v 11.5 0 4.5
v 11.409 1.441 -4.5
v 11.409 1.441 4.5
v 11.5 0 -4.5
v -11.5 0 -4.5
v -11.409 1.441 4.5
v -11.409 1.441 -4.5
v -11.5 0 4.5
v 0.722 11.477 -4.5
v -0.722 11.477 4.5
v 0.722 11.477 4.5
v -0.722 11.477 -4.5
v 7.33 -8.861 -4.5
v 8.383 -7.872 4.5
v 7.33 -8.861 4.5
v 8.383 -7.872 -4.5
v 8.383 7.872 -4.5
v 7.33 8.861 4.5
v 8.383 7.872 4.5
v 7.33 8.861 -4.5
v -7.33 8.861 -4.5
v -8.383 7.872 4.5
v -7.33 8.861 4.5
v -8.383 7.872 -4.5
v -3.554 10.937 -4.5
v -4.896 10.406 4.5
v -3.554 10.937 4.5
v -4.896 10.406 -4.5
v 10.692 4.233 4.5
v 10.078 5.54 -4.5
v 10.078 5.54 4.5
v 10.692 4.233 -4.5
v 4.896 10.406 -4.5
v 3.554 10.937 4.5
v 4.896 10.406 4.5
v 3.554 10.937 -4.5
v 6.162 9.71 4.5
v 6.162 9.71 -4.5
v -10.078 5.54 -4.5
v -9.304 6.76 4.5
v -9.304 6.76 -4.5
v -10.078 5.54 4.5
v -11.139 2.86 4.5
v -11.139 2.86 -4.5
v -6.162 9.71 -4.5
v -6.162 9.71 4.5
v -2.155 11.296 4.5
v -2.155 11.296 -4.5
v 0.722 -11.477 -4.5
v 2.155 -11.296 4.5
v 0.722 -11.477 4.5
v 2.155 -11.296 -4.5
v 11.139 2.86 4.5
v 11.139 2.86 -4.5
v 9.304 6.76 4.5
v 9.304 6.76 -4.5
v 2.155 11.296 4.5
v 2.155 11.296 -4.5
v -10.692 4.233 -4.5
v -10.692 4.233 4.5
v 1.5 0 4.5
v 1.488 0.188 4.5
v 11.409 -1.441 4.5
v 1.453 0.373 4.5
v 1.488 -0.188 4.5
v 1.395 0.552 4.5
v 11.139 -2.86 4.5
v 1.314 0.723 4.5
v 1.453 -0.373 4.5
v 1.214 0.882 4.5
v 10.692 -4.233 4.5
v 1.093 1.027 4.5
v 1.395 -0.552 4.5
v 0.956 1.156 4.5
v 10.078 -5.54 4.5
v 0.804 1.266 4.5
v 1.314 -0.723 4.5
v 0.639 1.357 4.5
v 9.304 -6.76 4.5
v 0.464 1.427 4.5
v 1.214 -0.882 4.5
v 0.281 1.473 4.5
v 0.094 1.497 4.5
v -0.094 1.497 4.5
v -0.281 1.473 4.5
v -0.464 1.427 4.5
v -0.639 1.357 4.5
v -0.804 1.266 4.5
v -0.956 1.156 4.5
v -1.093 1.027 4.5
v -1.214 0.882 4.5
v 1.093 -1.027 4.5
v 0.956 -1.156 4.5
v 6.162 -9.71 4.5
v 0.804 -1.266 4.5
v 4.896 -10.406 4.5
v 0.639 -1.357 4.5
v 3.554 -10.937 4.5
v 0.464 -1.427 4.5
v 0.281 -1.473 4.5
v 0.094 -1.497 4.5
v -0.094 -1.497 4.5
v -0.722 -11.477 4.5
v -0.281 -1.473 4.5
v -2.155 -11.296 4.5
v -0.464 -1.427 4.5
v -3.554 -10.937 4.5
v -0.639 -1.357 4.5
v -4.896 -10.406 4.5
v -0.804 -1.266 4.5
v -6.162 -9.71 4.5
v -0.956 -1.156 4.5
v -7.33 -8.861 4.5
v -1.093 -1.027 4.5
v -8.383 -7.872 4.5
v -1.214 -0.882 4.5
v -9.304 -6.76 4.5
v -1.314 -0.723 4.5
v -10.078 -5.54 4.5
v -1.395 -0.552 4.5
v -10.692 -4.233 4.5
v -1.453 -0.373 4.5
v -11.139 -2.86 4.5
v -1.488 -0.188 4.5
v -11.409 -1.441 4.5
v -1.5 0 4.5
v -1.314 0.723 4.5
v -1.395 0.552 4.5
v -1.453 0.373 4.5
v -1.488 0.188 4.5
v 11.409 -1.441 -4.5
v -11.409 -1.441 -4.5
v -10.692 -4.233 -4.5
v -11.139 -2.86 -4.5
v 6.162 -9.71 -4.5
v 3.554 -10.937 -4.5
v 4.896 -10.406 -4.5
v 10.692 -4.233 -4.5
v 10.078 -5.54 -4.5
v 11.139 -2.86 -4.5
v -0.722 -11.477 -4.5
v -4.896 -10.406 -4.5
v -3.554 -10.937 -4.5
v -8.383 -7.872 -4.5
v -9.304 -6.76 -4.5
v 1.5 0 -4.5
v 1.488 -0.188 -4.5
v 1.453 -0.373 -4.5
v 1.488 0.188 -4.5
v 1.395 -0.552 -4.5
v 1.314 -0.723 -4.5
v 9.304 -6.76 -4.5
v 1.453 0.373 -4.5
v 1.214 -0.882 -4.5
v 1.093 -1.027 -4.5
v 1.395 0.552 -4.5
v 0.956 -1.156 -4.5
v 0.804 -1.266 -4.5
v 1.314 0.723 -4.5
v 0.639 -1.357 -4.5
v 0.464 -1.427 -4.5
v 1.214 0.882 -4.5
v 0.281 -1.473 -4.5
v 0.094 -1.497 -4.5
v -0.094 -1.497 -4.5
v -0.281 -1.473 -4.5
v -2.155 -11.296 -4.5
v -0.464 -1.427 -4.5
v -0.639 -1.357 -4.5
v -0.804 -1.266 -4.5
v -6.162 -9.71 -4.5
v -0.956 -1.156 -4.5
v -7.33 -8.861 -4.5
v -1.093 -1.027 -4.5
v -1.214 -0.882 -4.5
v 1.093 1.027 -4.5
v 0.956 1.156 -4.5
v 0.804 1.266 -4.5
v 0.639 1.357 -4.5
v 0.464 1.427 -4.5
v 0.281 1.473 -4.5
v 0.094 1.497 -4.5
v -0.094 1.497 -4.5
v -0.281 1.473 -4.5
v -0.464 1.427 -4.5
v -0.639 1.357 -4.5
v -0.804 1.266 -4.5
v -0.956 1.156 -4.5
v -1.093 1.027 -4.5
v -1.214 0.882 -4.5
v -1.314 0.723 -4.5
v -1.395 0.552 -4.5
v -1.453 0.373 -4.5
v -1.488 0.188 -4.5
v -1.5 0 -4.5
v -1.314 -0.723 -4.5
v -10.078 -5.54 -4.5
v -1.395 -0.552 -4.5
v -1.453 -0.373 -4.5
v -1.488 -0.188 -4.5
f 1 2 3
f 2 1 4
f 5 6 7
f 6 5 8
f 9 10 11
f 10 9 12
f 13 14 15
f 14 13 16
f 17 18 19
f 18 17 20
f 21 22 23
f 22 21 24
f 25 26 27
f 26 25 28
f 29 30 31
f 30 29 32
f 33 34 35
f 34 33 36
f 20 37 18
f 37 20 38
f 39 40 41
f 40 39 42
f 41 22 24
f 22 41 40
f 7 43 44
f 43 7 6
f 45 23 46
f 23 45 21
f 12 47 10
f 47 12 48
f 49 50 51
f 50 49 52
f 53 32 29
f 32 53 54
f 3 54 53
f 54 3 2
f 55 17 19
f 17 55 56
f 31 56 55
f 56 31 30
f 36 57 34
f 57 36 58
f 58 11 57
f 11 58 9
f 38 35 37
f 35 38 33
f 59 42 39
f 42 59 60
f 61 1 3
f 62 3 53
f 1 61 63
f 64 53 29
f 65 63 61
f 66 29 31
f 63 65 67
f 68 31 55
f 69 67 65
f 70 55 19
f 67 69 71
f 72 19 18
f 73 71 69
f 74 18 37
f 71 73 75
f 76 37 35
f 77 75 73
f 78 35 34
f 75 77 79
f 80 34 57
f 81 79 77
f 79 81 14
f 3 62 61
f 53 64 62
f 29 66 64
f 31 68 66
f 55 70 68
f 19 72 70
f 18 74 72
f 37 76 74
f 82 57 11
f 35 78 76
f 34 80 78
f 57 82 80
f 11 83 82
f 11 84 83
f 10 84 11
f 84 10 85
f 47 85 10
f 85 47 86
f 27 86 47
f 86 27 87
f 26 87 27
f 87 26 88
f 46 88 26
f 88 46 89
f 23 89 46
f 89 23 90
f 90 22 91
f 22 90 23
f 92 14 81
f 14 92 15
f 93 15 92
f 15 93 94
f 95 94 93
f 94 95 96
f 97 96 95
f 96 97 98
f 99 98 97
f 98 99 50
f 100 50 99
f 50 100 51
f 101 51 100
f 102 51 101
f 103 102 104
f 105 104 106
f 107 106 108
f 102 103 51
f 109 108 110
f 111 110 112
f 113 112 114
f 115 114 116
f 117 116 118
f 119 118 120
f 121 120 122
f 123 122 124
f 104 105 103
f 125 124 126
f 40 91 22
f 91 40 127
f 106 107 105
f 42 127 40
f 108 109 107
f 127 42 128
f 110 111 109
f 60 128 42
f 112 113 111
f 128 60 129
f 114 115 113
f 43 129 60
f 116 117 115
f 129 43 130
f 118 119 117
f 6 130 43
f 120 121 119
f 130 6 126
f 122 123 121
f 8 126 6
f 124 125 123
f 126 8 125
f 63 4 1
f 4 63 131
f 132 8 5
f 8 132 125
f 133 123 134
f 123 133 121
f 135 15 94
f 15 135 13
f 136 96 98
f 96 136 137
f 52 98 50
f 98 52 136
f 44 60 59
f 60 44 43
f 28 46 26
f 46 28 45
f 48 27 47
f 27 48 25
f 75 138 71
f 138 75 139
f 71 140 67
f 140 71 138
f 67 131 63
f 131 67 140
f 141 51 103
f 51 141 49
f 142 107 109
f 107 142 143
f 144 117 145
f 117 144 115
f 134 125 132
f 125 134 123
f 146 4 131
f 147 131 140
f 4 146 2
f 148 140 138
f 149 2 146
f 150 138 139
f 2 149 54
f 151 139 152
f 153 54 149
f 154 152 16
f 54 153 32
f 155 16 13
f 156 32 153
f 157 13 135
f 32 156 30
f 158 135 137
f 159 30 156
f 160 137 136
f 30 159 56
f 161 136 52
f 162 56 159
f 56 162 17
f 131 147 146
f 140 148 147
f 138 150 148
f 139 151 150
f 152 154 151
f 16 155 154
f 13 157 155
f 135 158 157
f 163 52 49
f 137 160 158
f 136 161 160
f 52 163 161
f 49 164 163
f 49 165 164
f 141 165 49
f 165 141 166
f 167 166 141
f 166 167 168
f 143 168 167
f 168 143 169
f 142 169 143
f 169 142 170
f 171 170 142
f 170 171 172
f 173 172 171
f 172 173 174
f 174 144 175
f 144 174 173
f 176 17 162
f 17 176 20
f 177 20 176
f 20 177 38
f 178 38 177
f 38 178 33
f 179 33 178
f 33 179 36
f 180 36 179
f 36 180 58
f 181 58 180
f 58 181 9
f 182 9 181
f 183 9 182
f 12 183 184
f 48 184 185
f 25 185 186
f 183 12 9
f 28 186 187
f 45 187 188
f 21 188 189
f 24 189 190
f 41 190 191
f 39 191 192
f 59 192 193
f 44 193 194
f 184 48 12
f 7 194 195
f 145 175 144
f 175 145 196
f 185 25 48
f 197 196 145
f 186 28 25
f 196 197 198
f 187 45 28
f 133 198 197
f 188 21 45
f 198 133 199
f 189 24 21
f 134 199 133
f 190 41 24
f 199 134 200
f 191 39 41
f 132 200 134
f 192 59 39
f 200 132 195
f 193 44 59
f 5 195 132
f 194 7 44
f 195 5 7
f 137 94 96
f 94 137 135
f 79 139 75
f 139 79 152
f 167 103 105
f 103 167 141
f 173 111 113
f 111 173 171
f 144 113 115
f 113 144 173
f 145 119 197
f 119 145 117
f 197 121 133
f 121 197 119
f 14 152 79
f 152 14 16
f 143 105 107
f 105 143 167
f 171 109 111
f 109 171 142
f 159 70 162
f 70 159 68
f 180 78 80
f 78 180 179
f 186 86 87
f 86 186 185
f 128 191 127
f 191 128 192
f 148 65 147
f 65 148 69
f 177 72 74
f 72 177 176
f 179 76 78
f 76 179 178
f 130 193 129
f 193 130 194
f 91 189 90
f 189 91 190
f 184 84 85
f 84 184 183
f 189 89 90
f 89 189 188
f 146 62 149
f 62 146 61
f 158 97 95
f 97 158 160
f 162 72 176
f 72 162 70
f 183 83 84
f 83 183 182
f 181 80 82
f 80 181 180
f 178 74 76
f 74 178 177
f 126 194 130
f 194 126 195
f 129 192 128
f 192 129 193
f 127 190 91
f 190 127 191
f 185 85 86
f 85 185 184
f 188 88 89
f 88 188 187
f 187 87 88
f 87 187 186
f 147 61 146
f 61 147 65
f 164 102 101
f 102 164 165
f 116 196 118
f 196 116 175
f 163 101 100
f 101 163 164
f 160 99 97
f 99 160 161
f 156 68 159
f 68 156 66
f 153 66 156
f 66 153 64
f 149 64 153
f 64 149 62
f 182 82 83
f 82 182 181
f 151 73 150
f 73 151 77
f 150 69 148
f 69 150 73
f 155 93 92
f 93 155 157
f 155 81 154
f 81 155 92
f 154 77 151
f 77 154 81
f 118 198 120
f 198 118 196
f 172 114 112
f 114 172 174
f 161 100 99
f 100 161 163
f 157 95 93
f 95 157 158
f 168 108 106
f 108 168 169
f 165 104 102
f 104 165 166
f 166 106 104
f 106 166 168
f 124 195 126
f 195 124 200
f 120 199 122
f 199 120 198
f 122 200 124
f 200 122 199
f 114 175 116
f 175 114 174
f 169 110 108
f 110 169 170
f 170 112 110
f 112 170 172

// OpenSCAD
$fn = 50;


difference() {
	union() {
		translate(v = [0, 0, -4.5000000000]) {
			cylinder(h = 9, r = 11.5000000000);
		}
	}
	union() {
		translate(v = [0, 0, -100.0000000000]) {
			cylinder(h = 200, r = 1.5000000000);
		}
	}
}
